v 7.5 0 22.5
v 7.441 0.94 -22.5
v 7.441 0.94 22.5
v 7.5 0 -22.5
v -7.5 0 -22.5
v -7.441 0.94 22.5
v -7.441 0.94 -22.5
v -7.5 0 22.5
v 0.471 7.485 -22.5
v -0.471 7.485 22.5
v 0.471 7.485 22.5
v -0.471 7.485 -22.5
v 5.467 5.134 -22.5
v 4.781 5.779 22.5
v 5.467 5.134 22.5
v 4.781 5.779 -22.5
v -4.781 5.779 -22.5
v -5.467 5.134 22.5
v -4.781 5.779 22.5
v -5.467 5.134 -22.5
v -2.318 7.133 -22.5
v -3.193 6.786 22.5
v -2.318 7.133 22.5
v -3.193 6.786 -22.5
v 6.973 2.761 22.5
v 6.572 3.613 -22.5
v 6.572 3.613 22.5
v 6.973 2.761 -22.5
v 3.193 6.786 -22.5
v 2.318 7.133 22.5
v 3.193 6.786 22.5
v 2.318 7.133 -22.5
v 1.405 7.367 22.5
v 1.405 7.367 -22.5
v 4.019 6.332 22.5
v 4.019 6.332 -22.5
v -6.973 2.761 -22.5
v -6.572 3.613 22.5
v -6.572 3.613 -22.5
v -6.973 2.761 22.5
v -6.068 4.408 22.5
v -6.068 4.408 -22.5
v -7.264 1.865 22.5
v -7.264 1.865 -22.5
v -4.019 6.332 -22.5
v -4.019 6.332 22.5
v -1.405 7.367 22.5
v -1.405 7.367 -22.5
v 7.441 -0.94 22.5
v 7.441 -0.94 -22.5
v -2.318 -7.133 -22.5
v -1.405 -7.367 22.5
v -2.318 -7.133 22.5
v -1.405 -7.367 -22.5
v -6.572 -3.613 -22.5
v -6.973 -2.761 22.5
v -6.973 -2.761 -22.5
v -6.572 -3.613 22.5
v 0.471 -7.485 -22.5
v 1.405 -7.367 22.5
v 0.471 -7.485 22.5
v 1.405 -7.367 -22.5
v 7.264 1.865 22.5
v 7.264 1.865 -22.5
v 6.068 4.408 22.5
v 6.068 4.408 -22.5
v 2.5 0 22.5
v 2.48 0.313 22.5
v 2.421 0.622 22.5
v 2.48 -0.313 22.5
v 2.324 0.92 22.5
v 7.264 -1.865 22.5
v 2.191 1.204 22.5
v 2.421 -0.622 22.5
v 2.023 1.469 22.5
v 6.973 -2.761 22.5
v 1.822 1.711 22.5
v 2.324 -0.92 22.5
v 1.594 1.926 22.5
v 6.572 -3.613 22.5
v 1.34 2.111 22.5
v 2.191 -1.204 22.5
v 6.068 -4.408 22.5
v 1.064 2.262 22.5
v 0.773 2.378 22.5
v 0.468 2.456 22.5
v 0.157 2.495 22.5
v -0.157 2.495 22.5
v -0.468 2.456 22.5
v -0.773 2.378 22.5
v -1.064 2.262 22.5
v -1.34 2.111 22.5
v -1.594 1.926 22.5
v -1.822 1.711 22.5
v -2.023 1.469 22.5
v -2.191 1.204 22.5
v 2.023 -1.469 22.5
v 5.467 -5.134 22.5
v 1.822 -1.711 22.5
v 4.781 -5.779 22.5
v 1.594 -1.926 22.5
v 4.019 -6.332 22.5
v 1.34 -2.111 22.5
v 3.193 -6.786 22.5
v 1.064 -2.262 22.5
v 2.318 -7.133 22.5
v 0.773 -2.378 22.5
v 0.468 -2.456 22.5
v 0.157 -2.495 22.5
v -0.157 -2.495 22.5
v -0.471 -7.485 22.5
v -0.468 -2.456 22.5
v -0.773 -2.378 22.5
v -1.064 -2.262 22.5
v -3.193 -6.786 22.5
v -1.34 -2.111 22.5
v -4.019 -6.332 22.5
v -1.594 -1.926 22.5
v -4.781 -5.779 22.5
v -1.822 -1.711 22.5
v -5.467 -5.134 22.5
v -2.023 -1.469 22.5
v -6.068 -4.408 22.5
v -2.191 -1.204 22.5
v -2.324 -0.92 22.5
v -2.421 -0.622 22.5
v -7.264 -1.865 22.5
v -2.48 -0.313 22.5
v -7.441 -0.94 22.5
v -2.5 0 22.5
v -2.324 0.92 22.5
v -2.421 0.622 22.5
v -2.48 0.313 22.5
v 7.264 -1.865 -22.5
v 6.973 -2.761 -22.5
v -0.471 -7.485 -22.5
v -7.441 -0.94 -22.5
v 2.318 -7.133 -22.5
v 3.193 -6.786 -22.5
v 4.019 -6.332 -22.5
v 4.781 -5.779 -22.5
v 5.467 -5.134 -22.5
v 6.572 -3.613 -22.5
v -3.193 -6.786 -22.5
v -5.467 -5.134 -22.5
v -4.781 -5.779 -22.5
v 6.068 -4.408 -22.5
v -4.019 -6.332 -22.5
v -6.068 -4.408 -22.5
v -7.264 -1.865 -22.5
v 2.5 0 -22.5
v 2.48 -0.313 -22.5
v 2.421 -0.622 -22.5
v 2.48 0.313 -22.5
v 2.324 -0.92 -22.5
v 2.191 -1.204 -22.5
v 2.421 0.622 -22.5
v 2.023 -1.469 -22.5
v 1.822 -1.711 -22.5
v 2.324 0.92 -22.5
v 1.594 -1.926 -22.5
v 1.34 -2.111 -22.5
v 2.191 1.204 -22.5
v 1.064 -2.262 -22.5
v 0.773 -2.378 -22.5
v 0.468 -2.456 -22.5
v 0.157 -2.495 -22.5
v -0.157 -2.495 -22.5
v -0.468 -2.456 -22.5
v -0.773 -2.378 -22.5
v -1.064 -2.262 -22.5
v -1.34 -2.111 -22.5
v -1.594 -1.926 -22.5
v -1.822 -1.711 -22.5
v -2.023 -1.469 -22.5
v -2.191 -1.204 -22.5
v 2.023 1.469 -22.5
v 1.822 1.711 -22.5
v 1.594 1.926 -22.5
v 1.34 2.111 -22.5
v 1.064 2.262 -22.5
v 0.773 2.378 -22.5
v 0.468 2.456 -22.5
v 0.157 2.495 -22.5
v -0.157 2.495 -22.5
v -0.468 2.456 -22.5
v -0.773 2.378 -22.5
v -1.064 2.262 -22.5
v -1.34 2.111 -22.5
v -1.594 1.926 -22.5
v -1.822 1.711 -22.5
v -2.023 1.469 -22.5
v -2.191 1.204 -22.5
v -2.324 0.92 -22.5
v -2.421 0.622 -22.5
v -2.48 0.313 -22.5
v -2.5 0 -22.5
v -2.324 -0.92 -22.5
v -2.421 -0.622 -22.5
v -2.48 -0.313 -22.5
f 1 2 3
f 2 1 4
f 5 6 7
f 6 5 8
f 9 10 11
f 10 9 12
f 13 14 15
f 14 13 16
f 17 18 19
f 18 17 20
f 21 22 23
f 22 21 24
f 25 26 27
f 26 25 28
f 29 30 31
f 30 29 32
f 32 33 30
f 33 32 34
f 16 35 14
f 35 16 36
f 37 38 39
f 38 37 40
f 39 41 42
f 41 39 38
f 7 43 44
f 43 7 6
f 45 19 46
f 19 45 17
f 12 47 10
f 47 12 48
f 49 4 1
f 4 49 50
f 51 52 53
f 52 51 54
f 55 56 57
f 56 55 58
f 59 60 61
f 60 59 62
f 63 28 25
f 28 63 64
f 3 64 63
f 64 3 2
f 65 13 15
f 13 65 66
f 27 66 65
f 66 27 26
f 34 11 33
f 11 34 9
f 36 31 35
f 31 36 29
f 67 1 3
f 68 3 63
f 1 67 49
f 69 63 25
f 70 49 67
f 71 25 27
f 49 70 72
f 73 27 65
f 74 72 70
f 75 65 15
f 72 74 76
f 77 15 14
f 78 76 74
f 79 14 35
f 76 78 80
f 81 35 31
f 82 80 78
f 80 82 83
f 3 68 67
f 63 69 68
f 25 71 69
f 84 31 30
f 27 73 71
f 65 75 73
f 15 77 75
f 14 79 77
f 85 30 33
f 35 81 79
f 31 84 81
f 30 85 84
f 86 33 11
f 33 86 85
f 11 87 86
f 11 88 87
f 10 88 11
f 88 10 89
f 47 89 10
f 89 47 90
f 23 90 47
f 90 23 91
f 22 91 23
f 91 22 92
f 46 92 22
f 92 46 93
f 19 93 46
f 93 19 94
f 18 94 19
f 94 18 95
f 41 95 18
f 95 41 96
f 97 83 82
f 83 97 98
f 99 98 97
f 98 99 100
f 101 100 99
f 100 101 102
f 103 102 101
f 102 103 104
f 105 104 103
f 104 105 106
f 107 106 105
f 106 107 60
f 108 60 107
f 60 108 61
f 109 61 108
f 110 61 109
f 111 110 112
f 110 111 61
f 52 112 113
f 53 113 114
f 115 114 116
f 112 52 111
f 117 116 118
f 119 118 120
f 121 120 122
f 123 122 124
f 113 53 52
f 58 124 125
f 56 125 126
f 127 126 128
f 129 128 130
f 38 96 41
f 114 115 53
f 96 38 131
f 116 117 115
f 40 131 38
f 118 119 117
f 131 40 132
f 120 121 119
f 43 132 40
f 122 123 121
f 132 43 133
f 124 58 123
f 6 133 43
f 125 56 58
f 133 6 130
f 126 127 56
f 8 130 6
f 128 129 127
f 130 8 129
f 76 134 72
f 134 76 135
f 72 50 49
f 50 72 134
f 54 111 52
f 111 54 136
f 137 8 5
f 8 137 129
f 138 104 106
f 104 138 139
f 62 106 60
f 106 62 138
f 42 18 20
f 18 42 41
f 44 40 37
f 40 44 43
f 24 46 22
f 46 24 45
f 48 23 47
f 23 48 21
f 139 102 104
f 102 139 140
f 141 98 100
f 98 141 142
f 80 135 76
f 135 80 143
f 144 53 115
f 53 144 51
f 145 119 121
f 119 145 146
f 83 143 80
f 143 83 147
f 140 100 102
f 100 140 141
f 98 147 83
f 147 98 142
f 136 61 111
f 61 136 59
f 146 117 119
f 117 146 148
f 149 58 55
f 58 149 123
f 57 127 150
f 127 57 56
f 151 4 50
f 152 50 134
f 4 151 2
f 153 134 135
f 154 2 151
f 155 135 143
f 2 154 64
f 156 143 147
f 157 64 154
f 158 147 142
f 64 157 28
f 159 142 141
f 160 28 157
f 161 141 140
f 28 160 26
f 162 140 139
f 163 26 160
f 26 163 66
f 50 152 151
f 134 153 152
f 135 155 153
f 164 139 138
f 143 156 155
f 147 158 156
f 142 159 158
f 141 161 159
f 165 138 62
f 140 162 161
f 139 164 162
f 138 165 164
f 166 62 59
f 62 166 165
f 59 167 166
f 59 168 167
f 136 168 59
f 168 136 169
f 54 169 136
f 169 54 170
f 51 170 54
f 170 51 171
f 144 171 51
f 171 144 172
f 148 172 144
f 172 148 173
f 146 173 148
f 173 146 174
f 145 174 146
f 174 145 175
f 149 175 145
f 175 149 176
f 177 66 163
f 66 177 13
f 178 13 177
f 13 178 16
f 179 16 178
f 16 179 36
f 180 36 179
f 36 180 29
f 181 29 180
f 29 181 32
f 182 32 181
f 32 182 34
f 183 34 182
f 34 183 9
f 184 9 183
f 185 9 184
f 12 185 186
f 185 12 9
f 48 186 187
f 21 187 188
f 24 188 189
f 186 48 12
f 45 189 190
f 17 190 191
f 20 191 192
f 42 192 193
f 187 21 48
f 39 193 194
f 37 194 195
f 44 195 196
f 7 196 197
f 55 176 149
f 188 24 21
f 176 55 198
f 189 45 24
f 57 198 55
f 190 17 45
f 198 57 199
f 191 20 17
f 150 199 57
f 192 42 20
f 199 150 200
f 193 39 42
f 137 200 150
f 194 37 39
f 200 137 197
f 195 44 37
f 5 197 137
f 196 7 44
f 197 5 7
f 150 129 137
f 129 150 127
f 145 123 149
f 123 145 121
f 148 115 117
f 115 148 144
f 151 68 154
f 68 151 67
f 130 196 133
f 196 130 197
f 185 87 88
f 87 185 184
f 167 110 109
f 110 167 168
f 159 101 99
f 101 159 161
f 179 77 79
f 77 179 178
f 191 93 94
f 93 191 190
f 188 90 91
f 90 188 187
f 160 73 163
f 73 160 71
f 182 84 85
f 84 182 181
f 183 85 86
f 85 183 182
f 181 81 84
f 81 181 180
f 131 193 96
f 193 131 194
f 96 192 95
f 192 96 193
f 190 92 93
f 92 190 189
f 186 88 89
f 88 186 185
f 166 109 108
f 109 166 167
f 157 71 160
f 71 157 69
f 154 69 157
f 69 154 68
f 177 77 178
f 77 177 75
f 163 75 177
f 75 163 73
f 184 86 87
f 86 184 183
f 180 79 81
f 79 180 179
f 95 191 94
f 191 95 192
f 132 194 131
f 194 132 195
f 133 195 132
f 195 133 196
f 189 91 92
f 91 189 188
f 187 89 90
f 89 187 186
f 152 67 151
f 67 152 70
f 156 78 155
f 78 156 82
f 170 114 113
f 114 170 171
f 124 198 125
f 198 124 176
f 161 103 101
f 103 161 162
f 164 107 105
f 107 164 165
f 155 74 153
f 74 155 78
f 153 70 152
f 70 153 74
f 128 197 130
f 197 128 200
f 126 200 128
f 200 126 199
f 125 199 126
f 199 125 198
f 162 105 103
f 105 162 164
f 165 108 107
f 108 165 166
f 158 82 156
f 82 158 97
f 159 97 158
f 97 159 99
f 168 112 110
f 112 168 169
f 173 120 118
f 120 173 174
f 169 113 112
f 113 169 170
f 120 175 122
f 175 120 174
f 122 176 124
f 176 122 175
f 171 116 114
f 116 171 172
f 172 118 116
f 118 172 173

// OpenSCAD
$fn = 50;


difference() {
	union() {
		translate(v = [0, 0, -22.5000000000]) {
			cylinder(h = 45, r = 7.5000000000);
		}
	}
	union() {
		translate(v = [0, 0, -100.0000000000]) {
			cylinder(h = 200, r = 2.5000000000);
		}
	}
}
